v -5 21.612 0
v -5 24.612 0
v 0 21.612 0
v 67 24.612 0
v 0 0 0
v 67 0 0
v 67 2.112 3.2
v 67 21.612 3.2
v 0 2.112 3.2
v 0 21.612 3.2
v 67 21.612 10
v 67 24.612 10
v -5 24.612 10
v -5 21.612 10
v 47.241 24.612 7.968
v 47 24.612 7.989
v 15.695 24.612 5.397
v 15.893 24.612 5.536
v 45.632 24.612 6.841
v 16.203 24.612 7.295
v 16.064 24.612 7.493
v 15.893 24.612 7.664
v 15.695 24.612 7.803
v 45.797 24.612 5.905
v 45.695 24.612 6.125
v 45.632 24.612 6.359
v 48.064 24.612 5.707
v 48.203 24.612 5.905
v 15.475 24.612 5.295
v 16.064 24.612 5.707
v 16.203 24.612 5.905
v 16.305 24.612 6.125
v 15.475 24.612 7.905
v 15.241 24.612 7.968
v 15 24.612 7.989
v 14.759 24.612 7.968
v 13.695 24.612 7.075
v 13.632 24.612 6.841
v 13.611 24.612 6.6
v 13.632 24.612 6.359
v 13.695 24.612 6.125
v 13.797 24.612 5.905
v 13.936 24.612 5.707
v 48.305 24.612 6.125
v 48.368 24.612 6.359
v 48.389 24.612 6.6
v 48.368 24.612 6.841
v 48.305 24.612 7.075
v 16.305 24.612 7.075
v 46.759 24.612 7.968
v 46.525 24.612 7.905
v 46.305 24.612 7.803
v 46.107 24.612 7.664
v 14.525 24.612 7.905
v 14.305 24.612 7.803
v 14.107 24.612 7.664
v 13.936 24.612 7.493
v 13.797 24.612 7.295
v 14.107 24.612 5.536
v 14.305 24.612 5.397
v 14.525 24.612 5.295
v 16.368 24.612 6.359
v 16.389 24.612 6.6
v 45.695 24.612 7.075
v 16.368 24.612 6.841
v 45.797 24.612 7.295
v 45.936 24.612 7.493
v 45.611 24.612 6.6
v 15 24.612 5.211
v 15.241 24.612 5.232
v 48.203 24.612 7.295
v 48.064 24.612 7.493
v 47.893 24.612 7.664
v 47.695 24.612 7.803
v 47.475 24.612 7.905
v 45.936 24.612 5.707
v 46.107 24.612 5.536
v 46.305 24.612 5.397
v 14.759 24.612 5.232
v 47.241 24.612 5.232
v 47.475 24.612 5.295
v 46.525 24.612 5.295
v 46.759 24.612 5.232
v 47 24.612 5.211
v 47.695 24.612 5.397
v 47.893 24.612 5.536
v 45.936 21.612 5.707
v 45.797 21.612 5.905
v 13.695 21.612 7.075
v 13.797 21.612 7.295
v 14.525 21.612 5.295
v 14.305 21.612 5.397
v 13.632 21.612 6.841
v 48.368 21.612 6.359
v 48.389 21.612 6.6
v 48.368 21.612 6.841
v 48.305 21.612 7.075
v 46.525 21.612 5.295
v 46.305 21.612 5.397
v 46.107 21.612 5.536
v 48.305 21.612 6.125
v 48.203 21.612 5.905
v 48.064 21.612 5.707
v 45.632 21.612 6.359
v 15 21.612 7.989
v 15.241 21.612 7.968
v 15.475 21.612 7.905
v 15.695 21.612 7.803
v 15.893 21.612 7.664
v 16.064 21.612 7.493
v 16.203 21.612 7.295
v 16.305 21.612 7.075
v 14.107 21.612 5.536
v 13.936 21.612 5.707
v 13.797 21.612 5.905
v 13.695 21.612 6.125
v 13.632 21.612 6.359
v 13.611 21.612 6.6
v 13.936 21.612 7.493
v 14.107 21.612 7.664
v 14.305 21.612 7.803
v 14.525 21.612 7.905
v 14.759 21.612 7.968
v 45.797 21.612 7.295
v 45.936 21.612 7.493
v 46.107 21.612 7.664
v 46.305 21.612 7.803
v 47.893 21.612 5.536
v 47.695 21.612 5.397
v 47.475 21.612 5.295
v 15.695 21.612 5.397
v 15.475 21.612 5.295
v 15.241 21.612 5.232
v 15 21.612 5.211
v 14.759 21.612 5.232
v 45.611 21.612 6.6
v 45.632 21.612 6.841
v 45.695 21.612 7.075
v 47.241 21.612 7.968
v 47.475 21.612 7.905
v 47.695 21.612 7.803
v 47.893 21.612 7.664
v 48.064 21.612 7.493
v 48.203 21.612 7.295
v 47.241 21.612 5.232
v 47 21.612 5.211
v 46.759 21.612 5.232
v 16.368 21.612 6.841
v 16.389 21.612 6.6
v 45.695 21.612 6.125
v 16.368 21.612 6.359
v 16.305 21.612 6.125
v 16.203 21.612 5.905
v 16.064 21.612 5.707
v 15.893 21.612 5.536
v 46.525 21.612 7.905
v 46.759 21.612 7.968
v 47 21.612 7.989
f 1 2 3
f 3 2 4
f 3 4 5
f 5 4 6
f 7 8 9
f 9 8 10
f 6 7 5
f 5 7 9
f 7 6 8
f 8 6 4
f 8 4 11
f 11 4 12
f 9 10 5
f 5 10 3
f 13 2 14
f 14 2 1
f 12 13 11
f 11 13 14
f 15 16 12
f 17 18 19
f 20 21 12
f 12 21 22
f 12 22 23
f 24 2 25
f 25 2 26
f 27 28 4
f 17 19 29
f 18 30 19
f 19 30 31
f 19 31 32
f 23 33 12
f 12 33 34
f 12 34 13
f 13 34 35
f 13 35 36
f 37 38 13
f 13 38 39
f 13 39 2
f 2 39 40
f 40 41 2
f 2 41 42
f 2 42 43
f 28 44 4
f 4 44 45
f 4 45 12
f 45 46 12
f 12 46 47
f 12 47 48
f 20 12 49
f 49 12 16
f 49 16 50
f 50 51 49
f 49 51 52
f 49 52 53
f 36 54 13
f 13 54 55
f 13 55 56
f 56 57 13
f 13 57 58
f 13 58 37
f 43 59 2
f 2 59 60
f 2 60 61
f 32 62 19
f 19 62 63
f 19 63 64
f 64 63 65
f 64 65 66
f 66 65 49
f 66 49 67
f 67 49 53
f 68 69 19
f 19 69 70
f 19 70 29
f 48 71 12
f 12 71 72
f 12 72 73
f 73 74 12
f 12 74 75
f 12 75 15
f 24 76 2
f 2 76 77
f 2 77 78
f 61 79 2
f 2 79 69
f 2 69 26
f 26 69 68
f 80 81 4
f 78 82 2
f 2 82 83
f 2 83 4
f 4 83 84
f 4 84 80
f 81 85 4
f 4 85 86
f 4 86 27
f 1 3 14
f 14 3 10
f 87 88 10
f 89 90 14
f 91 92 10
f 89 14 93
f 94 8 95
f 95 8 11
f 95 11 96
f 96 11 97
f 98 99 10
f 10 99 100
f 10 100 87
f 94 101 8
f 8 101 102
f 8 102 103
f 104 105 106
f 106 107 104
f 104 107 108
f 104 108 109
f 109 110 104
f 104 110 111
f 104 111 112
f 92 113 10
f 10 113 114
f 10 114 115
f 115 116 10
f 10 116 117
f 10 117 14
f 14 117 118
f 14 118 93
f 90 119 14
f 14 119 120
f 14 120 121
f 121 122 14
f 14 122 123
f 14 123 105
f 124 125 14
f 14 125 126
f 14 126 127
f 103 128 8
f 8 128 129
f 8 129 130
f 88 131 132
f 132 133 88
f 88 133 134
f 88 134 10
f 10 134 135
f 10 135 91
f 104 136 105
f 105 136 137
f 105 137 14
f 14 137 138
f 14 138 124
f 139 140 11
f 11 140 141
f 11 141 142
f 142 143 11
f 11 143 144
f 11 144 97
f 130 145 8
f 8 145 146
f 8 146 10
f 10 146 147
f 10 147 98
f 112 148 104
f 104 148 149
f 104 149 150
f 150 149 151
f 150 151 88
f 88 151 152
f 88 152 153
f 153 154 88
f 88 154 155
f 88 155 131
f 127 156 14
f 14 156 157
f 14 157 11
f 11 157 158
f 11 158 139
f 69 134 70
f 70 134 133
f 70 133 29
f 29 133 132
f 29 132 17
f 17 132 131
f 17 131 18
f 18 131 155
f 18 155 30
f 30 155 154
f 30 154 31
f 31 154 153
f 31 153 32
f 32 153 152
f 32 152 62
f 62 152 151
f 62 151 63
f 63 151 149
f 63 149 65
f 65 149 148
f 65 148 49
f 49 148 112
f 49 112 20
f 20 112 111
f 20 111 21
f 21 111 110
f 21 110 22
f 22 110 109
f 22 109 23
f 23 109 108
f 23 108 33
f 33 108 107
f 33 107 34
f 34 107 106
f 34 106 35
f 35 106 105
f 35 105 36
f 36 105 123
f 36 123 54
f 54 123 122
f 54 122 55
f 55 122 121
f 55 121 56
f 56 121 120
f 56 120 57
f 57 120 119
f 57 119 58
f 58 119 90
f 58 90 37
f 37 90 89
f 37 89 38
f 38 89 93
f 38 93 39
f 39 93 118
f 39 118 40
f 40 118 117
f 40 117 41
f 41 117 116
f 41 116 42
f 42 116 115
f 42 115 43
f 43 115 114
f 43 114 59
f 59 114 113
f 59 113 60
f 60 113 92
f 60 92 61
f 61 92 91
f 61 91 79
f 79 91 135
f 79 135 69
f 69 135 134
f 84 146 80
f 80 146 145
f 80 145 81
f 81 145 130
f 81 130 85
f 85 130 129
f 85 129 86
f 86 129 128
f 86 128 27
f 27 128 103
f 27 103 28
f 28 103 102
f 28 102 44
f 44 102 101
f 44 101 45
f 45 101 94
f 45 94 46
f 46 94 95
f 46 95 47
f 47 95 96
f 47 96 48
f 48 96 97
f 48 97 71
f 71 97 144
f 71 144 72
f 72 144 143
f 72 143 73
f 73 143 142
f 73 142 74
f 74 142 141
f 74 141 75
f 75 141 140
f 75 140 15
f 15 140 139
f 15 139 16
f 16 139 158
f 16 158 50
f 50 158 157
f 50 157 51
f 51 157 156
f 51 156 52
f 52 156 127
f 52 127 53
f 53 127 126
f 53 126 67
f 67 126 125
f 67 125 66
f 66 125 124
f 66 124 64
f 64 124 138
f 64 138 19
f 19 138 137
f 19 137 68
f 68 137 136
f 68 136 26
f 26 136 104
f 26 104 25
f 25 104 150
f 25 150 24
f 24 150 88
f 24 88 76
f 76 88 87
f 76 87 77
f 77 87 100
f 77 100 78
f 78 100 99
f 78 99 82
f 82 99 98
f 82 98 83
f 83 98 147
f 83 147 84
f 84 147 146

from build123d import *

# Parameters (mm, degrees)
BOSS_EXTRUDE1_DEPTH = 67
SKETCH2_W           = 72
SKETCH2_H           = 10
BOSS_EXTRUDE2_DEPTH = 3
SKETCH3_R           = 1.3890625
CUT_EXTRUDE1_DEPTH  = 3


with BuildPart() as part:
    # Sketch1 → Boss-Extrude1 (new body)
    with BuildSketch(Plane(origin=(0, 0, 0), x_dir=(0, 0, -1), z_dir=(1, 0, 0))):
        Polygon((0, 0), (-3.2, 2.112416059), (-3.2, 21.612416059), (0, 21.612416059), align=None)
    extrude(amount=BOSS_EXTRUDE1_DEPTH)

    # Sketch2 → Boss-Extrude2 (add)
    with BuildSketch(Plane(origin=(0, 21.612416059, 0), x_dir=(1, 0, 0), z_dir=(0, 1, 0))):
        with Locations((31, -5)):
            Rectangle(SKETCH2_W, SKETCH2_H)
    extrude(amount=BOSS_EXTRUDE2_DEPTH)

    # Sketch3 → Cut-Extrude1 (cut)
    with BuildSketch(Plane.XZ.offset(-21.612416059)):
        with Locations((47, 6.6)):
            Circle(SKETCH3_R)
        with Locations((15, 6.6)):
            Circle(SKETCH3_R)
    extrude(amount=-CUT_EXTRUDE1_DEPTH, mode=Mode.SUBTRACT)


solid = part.part
